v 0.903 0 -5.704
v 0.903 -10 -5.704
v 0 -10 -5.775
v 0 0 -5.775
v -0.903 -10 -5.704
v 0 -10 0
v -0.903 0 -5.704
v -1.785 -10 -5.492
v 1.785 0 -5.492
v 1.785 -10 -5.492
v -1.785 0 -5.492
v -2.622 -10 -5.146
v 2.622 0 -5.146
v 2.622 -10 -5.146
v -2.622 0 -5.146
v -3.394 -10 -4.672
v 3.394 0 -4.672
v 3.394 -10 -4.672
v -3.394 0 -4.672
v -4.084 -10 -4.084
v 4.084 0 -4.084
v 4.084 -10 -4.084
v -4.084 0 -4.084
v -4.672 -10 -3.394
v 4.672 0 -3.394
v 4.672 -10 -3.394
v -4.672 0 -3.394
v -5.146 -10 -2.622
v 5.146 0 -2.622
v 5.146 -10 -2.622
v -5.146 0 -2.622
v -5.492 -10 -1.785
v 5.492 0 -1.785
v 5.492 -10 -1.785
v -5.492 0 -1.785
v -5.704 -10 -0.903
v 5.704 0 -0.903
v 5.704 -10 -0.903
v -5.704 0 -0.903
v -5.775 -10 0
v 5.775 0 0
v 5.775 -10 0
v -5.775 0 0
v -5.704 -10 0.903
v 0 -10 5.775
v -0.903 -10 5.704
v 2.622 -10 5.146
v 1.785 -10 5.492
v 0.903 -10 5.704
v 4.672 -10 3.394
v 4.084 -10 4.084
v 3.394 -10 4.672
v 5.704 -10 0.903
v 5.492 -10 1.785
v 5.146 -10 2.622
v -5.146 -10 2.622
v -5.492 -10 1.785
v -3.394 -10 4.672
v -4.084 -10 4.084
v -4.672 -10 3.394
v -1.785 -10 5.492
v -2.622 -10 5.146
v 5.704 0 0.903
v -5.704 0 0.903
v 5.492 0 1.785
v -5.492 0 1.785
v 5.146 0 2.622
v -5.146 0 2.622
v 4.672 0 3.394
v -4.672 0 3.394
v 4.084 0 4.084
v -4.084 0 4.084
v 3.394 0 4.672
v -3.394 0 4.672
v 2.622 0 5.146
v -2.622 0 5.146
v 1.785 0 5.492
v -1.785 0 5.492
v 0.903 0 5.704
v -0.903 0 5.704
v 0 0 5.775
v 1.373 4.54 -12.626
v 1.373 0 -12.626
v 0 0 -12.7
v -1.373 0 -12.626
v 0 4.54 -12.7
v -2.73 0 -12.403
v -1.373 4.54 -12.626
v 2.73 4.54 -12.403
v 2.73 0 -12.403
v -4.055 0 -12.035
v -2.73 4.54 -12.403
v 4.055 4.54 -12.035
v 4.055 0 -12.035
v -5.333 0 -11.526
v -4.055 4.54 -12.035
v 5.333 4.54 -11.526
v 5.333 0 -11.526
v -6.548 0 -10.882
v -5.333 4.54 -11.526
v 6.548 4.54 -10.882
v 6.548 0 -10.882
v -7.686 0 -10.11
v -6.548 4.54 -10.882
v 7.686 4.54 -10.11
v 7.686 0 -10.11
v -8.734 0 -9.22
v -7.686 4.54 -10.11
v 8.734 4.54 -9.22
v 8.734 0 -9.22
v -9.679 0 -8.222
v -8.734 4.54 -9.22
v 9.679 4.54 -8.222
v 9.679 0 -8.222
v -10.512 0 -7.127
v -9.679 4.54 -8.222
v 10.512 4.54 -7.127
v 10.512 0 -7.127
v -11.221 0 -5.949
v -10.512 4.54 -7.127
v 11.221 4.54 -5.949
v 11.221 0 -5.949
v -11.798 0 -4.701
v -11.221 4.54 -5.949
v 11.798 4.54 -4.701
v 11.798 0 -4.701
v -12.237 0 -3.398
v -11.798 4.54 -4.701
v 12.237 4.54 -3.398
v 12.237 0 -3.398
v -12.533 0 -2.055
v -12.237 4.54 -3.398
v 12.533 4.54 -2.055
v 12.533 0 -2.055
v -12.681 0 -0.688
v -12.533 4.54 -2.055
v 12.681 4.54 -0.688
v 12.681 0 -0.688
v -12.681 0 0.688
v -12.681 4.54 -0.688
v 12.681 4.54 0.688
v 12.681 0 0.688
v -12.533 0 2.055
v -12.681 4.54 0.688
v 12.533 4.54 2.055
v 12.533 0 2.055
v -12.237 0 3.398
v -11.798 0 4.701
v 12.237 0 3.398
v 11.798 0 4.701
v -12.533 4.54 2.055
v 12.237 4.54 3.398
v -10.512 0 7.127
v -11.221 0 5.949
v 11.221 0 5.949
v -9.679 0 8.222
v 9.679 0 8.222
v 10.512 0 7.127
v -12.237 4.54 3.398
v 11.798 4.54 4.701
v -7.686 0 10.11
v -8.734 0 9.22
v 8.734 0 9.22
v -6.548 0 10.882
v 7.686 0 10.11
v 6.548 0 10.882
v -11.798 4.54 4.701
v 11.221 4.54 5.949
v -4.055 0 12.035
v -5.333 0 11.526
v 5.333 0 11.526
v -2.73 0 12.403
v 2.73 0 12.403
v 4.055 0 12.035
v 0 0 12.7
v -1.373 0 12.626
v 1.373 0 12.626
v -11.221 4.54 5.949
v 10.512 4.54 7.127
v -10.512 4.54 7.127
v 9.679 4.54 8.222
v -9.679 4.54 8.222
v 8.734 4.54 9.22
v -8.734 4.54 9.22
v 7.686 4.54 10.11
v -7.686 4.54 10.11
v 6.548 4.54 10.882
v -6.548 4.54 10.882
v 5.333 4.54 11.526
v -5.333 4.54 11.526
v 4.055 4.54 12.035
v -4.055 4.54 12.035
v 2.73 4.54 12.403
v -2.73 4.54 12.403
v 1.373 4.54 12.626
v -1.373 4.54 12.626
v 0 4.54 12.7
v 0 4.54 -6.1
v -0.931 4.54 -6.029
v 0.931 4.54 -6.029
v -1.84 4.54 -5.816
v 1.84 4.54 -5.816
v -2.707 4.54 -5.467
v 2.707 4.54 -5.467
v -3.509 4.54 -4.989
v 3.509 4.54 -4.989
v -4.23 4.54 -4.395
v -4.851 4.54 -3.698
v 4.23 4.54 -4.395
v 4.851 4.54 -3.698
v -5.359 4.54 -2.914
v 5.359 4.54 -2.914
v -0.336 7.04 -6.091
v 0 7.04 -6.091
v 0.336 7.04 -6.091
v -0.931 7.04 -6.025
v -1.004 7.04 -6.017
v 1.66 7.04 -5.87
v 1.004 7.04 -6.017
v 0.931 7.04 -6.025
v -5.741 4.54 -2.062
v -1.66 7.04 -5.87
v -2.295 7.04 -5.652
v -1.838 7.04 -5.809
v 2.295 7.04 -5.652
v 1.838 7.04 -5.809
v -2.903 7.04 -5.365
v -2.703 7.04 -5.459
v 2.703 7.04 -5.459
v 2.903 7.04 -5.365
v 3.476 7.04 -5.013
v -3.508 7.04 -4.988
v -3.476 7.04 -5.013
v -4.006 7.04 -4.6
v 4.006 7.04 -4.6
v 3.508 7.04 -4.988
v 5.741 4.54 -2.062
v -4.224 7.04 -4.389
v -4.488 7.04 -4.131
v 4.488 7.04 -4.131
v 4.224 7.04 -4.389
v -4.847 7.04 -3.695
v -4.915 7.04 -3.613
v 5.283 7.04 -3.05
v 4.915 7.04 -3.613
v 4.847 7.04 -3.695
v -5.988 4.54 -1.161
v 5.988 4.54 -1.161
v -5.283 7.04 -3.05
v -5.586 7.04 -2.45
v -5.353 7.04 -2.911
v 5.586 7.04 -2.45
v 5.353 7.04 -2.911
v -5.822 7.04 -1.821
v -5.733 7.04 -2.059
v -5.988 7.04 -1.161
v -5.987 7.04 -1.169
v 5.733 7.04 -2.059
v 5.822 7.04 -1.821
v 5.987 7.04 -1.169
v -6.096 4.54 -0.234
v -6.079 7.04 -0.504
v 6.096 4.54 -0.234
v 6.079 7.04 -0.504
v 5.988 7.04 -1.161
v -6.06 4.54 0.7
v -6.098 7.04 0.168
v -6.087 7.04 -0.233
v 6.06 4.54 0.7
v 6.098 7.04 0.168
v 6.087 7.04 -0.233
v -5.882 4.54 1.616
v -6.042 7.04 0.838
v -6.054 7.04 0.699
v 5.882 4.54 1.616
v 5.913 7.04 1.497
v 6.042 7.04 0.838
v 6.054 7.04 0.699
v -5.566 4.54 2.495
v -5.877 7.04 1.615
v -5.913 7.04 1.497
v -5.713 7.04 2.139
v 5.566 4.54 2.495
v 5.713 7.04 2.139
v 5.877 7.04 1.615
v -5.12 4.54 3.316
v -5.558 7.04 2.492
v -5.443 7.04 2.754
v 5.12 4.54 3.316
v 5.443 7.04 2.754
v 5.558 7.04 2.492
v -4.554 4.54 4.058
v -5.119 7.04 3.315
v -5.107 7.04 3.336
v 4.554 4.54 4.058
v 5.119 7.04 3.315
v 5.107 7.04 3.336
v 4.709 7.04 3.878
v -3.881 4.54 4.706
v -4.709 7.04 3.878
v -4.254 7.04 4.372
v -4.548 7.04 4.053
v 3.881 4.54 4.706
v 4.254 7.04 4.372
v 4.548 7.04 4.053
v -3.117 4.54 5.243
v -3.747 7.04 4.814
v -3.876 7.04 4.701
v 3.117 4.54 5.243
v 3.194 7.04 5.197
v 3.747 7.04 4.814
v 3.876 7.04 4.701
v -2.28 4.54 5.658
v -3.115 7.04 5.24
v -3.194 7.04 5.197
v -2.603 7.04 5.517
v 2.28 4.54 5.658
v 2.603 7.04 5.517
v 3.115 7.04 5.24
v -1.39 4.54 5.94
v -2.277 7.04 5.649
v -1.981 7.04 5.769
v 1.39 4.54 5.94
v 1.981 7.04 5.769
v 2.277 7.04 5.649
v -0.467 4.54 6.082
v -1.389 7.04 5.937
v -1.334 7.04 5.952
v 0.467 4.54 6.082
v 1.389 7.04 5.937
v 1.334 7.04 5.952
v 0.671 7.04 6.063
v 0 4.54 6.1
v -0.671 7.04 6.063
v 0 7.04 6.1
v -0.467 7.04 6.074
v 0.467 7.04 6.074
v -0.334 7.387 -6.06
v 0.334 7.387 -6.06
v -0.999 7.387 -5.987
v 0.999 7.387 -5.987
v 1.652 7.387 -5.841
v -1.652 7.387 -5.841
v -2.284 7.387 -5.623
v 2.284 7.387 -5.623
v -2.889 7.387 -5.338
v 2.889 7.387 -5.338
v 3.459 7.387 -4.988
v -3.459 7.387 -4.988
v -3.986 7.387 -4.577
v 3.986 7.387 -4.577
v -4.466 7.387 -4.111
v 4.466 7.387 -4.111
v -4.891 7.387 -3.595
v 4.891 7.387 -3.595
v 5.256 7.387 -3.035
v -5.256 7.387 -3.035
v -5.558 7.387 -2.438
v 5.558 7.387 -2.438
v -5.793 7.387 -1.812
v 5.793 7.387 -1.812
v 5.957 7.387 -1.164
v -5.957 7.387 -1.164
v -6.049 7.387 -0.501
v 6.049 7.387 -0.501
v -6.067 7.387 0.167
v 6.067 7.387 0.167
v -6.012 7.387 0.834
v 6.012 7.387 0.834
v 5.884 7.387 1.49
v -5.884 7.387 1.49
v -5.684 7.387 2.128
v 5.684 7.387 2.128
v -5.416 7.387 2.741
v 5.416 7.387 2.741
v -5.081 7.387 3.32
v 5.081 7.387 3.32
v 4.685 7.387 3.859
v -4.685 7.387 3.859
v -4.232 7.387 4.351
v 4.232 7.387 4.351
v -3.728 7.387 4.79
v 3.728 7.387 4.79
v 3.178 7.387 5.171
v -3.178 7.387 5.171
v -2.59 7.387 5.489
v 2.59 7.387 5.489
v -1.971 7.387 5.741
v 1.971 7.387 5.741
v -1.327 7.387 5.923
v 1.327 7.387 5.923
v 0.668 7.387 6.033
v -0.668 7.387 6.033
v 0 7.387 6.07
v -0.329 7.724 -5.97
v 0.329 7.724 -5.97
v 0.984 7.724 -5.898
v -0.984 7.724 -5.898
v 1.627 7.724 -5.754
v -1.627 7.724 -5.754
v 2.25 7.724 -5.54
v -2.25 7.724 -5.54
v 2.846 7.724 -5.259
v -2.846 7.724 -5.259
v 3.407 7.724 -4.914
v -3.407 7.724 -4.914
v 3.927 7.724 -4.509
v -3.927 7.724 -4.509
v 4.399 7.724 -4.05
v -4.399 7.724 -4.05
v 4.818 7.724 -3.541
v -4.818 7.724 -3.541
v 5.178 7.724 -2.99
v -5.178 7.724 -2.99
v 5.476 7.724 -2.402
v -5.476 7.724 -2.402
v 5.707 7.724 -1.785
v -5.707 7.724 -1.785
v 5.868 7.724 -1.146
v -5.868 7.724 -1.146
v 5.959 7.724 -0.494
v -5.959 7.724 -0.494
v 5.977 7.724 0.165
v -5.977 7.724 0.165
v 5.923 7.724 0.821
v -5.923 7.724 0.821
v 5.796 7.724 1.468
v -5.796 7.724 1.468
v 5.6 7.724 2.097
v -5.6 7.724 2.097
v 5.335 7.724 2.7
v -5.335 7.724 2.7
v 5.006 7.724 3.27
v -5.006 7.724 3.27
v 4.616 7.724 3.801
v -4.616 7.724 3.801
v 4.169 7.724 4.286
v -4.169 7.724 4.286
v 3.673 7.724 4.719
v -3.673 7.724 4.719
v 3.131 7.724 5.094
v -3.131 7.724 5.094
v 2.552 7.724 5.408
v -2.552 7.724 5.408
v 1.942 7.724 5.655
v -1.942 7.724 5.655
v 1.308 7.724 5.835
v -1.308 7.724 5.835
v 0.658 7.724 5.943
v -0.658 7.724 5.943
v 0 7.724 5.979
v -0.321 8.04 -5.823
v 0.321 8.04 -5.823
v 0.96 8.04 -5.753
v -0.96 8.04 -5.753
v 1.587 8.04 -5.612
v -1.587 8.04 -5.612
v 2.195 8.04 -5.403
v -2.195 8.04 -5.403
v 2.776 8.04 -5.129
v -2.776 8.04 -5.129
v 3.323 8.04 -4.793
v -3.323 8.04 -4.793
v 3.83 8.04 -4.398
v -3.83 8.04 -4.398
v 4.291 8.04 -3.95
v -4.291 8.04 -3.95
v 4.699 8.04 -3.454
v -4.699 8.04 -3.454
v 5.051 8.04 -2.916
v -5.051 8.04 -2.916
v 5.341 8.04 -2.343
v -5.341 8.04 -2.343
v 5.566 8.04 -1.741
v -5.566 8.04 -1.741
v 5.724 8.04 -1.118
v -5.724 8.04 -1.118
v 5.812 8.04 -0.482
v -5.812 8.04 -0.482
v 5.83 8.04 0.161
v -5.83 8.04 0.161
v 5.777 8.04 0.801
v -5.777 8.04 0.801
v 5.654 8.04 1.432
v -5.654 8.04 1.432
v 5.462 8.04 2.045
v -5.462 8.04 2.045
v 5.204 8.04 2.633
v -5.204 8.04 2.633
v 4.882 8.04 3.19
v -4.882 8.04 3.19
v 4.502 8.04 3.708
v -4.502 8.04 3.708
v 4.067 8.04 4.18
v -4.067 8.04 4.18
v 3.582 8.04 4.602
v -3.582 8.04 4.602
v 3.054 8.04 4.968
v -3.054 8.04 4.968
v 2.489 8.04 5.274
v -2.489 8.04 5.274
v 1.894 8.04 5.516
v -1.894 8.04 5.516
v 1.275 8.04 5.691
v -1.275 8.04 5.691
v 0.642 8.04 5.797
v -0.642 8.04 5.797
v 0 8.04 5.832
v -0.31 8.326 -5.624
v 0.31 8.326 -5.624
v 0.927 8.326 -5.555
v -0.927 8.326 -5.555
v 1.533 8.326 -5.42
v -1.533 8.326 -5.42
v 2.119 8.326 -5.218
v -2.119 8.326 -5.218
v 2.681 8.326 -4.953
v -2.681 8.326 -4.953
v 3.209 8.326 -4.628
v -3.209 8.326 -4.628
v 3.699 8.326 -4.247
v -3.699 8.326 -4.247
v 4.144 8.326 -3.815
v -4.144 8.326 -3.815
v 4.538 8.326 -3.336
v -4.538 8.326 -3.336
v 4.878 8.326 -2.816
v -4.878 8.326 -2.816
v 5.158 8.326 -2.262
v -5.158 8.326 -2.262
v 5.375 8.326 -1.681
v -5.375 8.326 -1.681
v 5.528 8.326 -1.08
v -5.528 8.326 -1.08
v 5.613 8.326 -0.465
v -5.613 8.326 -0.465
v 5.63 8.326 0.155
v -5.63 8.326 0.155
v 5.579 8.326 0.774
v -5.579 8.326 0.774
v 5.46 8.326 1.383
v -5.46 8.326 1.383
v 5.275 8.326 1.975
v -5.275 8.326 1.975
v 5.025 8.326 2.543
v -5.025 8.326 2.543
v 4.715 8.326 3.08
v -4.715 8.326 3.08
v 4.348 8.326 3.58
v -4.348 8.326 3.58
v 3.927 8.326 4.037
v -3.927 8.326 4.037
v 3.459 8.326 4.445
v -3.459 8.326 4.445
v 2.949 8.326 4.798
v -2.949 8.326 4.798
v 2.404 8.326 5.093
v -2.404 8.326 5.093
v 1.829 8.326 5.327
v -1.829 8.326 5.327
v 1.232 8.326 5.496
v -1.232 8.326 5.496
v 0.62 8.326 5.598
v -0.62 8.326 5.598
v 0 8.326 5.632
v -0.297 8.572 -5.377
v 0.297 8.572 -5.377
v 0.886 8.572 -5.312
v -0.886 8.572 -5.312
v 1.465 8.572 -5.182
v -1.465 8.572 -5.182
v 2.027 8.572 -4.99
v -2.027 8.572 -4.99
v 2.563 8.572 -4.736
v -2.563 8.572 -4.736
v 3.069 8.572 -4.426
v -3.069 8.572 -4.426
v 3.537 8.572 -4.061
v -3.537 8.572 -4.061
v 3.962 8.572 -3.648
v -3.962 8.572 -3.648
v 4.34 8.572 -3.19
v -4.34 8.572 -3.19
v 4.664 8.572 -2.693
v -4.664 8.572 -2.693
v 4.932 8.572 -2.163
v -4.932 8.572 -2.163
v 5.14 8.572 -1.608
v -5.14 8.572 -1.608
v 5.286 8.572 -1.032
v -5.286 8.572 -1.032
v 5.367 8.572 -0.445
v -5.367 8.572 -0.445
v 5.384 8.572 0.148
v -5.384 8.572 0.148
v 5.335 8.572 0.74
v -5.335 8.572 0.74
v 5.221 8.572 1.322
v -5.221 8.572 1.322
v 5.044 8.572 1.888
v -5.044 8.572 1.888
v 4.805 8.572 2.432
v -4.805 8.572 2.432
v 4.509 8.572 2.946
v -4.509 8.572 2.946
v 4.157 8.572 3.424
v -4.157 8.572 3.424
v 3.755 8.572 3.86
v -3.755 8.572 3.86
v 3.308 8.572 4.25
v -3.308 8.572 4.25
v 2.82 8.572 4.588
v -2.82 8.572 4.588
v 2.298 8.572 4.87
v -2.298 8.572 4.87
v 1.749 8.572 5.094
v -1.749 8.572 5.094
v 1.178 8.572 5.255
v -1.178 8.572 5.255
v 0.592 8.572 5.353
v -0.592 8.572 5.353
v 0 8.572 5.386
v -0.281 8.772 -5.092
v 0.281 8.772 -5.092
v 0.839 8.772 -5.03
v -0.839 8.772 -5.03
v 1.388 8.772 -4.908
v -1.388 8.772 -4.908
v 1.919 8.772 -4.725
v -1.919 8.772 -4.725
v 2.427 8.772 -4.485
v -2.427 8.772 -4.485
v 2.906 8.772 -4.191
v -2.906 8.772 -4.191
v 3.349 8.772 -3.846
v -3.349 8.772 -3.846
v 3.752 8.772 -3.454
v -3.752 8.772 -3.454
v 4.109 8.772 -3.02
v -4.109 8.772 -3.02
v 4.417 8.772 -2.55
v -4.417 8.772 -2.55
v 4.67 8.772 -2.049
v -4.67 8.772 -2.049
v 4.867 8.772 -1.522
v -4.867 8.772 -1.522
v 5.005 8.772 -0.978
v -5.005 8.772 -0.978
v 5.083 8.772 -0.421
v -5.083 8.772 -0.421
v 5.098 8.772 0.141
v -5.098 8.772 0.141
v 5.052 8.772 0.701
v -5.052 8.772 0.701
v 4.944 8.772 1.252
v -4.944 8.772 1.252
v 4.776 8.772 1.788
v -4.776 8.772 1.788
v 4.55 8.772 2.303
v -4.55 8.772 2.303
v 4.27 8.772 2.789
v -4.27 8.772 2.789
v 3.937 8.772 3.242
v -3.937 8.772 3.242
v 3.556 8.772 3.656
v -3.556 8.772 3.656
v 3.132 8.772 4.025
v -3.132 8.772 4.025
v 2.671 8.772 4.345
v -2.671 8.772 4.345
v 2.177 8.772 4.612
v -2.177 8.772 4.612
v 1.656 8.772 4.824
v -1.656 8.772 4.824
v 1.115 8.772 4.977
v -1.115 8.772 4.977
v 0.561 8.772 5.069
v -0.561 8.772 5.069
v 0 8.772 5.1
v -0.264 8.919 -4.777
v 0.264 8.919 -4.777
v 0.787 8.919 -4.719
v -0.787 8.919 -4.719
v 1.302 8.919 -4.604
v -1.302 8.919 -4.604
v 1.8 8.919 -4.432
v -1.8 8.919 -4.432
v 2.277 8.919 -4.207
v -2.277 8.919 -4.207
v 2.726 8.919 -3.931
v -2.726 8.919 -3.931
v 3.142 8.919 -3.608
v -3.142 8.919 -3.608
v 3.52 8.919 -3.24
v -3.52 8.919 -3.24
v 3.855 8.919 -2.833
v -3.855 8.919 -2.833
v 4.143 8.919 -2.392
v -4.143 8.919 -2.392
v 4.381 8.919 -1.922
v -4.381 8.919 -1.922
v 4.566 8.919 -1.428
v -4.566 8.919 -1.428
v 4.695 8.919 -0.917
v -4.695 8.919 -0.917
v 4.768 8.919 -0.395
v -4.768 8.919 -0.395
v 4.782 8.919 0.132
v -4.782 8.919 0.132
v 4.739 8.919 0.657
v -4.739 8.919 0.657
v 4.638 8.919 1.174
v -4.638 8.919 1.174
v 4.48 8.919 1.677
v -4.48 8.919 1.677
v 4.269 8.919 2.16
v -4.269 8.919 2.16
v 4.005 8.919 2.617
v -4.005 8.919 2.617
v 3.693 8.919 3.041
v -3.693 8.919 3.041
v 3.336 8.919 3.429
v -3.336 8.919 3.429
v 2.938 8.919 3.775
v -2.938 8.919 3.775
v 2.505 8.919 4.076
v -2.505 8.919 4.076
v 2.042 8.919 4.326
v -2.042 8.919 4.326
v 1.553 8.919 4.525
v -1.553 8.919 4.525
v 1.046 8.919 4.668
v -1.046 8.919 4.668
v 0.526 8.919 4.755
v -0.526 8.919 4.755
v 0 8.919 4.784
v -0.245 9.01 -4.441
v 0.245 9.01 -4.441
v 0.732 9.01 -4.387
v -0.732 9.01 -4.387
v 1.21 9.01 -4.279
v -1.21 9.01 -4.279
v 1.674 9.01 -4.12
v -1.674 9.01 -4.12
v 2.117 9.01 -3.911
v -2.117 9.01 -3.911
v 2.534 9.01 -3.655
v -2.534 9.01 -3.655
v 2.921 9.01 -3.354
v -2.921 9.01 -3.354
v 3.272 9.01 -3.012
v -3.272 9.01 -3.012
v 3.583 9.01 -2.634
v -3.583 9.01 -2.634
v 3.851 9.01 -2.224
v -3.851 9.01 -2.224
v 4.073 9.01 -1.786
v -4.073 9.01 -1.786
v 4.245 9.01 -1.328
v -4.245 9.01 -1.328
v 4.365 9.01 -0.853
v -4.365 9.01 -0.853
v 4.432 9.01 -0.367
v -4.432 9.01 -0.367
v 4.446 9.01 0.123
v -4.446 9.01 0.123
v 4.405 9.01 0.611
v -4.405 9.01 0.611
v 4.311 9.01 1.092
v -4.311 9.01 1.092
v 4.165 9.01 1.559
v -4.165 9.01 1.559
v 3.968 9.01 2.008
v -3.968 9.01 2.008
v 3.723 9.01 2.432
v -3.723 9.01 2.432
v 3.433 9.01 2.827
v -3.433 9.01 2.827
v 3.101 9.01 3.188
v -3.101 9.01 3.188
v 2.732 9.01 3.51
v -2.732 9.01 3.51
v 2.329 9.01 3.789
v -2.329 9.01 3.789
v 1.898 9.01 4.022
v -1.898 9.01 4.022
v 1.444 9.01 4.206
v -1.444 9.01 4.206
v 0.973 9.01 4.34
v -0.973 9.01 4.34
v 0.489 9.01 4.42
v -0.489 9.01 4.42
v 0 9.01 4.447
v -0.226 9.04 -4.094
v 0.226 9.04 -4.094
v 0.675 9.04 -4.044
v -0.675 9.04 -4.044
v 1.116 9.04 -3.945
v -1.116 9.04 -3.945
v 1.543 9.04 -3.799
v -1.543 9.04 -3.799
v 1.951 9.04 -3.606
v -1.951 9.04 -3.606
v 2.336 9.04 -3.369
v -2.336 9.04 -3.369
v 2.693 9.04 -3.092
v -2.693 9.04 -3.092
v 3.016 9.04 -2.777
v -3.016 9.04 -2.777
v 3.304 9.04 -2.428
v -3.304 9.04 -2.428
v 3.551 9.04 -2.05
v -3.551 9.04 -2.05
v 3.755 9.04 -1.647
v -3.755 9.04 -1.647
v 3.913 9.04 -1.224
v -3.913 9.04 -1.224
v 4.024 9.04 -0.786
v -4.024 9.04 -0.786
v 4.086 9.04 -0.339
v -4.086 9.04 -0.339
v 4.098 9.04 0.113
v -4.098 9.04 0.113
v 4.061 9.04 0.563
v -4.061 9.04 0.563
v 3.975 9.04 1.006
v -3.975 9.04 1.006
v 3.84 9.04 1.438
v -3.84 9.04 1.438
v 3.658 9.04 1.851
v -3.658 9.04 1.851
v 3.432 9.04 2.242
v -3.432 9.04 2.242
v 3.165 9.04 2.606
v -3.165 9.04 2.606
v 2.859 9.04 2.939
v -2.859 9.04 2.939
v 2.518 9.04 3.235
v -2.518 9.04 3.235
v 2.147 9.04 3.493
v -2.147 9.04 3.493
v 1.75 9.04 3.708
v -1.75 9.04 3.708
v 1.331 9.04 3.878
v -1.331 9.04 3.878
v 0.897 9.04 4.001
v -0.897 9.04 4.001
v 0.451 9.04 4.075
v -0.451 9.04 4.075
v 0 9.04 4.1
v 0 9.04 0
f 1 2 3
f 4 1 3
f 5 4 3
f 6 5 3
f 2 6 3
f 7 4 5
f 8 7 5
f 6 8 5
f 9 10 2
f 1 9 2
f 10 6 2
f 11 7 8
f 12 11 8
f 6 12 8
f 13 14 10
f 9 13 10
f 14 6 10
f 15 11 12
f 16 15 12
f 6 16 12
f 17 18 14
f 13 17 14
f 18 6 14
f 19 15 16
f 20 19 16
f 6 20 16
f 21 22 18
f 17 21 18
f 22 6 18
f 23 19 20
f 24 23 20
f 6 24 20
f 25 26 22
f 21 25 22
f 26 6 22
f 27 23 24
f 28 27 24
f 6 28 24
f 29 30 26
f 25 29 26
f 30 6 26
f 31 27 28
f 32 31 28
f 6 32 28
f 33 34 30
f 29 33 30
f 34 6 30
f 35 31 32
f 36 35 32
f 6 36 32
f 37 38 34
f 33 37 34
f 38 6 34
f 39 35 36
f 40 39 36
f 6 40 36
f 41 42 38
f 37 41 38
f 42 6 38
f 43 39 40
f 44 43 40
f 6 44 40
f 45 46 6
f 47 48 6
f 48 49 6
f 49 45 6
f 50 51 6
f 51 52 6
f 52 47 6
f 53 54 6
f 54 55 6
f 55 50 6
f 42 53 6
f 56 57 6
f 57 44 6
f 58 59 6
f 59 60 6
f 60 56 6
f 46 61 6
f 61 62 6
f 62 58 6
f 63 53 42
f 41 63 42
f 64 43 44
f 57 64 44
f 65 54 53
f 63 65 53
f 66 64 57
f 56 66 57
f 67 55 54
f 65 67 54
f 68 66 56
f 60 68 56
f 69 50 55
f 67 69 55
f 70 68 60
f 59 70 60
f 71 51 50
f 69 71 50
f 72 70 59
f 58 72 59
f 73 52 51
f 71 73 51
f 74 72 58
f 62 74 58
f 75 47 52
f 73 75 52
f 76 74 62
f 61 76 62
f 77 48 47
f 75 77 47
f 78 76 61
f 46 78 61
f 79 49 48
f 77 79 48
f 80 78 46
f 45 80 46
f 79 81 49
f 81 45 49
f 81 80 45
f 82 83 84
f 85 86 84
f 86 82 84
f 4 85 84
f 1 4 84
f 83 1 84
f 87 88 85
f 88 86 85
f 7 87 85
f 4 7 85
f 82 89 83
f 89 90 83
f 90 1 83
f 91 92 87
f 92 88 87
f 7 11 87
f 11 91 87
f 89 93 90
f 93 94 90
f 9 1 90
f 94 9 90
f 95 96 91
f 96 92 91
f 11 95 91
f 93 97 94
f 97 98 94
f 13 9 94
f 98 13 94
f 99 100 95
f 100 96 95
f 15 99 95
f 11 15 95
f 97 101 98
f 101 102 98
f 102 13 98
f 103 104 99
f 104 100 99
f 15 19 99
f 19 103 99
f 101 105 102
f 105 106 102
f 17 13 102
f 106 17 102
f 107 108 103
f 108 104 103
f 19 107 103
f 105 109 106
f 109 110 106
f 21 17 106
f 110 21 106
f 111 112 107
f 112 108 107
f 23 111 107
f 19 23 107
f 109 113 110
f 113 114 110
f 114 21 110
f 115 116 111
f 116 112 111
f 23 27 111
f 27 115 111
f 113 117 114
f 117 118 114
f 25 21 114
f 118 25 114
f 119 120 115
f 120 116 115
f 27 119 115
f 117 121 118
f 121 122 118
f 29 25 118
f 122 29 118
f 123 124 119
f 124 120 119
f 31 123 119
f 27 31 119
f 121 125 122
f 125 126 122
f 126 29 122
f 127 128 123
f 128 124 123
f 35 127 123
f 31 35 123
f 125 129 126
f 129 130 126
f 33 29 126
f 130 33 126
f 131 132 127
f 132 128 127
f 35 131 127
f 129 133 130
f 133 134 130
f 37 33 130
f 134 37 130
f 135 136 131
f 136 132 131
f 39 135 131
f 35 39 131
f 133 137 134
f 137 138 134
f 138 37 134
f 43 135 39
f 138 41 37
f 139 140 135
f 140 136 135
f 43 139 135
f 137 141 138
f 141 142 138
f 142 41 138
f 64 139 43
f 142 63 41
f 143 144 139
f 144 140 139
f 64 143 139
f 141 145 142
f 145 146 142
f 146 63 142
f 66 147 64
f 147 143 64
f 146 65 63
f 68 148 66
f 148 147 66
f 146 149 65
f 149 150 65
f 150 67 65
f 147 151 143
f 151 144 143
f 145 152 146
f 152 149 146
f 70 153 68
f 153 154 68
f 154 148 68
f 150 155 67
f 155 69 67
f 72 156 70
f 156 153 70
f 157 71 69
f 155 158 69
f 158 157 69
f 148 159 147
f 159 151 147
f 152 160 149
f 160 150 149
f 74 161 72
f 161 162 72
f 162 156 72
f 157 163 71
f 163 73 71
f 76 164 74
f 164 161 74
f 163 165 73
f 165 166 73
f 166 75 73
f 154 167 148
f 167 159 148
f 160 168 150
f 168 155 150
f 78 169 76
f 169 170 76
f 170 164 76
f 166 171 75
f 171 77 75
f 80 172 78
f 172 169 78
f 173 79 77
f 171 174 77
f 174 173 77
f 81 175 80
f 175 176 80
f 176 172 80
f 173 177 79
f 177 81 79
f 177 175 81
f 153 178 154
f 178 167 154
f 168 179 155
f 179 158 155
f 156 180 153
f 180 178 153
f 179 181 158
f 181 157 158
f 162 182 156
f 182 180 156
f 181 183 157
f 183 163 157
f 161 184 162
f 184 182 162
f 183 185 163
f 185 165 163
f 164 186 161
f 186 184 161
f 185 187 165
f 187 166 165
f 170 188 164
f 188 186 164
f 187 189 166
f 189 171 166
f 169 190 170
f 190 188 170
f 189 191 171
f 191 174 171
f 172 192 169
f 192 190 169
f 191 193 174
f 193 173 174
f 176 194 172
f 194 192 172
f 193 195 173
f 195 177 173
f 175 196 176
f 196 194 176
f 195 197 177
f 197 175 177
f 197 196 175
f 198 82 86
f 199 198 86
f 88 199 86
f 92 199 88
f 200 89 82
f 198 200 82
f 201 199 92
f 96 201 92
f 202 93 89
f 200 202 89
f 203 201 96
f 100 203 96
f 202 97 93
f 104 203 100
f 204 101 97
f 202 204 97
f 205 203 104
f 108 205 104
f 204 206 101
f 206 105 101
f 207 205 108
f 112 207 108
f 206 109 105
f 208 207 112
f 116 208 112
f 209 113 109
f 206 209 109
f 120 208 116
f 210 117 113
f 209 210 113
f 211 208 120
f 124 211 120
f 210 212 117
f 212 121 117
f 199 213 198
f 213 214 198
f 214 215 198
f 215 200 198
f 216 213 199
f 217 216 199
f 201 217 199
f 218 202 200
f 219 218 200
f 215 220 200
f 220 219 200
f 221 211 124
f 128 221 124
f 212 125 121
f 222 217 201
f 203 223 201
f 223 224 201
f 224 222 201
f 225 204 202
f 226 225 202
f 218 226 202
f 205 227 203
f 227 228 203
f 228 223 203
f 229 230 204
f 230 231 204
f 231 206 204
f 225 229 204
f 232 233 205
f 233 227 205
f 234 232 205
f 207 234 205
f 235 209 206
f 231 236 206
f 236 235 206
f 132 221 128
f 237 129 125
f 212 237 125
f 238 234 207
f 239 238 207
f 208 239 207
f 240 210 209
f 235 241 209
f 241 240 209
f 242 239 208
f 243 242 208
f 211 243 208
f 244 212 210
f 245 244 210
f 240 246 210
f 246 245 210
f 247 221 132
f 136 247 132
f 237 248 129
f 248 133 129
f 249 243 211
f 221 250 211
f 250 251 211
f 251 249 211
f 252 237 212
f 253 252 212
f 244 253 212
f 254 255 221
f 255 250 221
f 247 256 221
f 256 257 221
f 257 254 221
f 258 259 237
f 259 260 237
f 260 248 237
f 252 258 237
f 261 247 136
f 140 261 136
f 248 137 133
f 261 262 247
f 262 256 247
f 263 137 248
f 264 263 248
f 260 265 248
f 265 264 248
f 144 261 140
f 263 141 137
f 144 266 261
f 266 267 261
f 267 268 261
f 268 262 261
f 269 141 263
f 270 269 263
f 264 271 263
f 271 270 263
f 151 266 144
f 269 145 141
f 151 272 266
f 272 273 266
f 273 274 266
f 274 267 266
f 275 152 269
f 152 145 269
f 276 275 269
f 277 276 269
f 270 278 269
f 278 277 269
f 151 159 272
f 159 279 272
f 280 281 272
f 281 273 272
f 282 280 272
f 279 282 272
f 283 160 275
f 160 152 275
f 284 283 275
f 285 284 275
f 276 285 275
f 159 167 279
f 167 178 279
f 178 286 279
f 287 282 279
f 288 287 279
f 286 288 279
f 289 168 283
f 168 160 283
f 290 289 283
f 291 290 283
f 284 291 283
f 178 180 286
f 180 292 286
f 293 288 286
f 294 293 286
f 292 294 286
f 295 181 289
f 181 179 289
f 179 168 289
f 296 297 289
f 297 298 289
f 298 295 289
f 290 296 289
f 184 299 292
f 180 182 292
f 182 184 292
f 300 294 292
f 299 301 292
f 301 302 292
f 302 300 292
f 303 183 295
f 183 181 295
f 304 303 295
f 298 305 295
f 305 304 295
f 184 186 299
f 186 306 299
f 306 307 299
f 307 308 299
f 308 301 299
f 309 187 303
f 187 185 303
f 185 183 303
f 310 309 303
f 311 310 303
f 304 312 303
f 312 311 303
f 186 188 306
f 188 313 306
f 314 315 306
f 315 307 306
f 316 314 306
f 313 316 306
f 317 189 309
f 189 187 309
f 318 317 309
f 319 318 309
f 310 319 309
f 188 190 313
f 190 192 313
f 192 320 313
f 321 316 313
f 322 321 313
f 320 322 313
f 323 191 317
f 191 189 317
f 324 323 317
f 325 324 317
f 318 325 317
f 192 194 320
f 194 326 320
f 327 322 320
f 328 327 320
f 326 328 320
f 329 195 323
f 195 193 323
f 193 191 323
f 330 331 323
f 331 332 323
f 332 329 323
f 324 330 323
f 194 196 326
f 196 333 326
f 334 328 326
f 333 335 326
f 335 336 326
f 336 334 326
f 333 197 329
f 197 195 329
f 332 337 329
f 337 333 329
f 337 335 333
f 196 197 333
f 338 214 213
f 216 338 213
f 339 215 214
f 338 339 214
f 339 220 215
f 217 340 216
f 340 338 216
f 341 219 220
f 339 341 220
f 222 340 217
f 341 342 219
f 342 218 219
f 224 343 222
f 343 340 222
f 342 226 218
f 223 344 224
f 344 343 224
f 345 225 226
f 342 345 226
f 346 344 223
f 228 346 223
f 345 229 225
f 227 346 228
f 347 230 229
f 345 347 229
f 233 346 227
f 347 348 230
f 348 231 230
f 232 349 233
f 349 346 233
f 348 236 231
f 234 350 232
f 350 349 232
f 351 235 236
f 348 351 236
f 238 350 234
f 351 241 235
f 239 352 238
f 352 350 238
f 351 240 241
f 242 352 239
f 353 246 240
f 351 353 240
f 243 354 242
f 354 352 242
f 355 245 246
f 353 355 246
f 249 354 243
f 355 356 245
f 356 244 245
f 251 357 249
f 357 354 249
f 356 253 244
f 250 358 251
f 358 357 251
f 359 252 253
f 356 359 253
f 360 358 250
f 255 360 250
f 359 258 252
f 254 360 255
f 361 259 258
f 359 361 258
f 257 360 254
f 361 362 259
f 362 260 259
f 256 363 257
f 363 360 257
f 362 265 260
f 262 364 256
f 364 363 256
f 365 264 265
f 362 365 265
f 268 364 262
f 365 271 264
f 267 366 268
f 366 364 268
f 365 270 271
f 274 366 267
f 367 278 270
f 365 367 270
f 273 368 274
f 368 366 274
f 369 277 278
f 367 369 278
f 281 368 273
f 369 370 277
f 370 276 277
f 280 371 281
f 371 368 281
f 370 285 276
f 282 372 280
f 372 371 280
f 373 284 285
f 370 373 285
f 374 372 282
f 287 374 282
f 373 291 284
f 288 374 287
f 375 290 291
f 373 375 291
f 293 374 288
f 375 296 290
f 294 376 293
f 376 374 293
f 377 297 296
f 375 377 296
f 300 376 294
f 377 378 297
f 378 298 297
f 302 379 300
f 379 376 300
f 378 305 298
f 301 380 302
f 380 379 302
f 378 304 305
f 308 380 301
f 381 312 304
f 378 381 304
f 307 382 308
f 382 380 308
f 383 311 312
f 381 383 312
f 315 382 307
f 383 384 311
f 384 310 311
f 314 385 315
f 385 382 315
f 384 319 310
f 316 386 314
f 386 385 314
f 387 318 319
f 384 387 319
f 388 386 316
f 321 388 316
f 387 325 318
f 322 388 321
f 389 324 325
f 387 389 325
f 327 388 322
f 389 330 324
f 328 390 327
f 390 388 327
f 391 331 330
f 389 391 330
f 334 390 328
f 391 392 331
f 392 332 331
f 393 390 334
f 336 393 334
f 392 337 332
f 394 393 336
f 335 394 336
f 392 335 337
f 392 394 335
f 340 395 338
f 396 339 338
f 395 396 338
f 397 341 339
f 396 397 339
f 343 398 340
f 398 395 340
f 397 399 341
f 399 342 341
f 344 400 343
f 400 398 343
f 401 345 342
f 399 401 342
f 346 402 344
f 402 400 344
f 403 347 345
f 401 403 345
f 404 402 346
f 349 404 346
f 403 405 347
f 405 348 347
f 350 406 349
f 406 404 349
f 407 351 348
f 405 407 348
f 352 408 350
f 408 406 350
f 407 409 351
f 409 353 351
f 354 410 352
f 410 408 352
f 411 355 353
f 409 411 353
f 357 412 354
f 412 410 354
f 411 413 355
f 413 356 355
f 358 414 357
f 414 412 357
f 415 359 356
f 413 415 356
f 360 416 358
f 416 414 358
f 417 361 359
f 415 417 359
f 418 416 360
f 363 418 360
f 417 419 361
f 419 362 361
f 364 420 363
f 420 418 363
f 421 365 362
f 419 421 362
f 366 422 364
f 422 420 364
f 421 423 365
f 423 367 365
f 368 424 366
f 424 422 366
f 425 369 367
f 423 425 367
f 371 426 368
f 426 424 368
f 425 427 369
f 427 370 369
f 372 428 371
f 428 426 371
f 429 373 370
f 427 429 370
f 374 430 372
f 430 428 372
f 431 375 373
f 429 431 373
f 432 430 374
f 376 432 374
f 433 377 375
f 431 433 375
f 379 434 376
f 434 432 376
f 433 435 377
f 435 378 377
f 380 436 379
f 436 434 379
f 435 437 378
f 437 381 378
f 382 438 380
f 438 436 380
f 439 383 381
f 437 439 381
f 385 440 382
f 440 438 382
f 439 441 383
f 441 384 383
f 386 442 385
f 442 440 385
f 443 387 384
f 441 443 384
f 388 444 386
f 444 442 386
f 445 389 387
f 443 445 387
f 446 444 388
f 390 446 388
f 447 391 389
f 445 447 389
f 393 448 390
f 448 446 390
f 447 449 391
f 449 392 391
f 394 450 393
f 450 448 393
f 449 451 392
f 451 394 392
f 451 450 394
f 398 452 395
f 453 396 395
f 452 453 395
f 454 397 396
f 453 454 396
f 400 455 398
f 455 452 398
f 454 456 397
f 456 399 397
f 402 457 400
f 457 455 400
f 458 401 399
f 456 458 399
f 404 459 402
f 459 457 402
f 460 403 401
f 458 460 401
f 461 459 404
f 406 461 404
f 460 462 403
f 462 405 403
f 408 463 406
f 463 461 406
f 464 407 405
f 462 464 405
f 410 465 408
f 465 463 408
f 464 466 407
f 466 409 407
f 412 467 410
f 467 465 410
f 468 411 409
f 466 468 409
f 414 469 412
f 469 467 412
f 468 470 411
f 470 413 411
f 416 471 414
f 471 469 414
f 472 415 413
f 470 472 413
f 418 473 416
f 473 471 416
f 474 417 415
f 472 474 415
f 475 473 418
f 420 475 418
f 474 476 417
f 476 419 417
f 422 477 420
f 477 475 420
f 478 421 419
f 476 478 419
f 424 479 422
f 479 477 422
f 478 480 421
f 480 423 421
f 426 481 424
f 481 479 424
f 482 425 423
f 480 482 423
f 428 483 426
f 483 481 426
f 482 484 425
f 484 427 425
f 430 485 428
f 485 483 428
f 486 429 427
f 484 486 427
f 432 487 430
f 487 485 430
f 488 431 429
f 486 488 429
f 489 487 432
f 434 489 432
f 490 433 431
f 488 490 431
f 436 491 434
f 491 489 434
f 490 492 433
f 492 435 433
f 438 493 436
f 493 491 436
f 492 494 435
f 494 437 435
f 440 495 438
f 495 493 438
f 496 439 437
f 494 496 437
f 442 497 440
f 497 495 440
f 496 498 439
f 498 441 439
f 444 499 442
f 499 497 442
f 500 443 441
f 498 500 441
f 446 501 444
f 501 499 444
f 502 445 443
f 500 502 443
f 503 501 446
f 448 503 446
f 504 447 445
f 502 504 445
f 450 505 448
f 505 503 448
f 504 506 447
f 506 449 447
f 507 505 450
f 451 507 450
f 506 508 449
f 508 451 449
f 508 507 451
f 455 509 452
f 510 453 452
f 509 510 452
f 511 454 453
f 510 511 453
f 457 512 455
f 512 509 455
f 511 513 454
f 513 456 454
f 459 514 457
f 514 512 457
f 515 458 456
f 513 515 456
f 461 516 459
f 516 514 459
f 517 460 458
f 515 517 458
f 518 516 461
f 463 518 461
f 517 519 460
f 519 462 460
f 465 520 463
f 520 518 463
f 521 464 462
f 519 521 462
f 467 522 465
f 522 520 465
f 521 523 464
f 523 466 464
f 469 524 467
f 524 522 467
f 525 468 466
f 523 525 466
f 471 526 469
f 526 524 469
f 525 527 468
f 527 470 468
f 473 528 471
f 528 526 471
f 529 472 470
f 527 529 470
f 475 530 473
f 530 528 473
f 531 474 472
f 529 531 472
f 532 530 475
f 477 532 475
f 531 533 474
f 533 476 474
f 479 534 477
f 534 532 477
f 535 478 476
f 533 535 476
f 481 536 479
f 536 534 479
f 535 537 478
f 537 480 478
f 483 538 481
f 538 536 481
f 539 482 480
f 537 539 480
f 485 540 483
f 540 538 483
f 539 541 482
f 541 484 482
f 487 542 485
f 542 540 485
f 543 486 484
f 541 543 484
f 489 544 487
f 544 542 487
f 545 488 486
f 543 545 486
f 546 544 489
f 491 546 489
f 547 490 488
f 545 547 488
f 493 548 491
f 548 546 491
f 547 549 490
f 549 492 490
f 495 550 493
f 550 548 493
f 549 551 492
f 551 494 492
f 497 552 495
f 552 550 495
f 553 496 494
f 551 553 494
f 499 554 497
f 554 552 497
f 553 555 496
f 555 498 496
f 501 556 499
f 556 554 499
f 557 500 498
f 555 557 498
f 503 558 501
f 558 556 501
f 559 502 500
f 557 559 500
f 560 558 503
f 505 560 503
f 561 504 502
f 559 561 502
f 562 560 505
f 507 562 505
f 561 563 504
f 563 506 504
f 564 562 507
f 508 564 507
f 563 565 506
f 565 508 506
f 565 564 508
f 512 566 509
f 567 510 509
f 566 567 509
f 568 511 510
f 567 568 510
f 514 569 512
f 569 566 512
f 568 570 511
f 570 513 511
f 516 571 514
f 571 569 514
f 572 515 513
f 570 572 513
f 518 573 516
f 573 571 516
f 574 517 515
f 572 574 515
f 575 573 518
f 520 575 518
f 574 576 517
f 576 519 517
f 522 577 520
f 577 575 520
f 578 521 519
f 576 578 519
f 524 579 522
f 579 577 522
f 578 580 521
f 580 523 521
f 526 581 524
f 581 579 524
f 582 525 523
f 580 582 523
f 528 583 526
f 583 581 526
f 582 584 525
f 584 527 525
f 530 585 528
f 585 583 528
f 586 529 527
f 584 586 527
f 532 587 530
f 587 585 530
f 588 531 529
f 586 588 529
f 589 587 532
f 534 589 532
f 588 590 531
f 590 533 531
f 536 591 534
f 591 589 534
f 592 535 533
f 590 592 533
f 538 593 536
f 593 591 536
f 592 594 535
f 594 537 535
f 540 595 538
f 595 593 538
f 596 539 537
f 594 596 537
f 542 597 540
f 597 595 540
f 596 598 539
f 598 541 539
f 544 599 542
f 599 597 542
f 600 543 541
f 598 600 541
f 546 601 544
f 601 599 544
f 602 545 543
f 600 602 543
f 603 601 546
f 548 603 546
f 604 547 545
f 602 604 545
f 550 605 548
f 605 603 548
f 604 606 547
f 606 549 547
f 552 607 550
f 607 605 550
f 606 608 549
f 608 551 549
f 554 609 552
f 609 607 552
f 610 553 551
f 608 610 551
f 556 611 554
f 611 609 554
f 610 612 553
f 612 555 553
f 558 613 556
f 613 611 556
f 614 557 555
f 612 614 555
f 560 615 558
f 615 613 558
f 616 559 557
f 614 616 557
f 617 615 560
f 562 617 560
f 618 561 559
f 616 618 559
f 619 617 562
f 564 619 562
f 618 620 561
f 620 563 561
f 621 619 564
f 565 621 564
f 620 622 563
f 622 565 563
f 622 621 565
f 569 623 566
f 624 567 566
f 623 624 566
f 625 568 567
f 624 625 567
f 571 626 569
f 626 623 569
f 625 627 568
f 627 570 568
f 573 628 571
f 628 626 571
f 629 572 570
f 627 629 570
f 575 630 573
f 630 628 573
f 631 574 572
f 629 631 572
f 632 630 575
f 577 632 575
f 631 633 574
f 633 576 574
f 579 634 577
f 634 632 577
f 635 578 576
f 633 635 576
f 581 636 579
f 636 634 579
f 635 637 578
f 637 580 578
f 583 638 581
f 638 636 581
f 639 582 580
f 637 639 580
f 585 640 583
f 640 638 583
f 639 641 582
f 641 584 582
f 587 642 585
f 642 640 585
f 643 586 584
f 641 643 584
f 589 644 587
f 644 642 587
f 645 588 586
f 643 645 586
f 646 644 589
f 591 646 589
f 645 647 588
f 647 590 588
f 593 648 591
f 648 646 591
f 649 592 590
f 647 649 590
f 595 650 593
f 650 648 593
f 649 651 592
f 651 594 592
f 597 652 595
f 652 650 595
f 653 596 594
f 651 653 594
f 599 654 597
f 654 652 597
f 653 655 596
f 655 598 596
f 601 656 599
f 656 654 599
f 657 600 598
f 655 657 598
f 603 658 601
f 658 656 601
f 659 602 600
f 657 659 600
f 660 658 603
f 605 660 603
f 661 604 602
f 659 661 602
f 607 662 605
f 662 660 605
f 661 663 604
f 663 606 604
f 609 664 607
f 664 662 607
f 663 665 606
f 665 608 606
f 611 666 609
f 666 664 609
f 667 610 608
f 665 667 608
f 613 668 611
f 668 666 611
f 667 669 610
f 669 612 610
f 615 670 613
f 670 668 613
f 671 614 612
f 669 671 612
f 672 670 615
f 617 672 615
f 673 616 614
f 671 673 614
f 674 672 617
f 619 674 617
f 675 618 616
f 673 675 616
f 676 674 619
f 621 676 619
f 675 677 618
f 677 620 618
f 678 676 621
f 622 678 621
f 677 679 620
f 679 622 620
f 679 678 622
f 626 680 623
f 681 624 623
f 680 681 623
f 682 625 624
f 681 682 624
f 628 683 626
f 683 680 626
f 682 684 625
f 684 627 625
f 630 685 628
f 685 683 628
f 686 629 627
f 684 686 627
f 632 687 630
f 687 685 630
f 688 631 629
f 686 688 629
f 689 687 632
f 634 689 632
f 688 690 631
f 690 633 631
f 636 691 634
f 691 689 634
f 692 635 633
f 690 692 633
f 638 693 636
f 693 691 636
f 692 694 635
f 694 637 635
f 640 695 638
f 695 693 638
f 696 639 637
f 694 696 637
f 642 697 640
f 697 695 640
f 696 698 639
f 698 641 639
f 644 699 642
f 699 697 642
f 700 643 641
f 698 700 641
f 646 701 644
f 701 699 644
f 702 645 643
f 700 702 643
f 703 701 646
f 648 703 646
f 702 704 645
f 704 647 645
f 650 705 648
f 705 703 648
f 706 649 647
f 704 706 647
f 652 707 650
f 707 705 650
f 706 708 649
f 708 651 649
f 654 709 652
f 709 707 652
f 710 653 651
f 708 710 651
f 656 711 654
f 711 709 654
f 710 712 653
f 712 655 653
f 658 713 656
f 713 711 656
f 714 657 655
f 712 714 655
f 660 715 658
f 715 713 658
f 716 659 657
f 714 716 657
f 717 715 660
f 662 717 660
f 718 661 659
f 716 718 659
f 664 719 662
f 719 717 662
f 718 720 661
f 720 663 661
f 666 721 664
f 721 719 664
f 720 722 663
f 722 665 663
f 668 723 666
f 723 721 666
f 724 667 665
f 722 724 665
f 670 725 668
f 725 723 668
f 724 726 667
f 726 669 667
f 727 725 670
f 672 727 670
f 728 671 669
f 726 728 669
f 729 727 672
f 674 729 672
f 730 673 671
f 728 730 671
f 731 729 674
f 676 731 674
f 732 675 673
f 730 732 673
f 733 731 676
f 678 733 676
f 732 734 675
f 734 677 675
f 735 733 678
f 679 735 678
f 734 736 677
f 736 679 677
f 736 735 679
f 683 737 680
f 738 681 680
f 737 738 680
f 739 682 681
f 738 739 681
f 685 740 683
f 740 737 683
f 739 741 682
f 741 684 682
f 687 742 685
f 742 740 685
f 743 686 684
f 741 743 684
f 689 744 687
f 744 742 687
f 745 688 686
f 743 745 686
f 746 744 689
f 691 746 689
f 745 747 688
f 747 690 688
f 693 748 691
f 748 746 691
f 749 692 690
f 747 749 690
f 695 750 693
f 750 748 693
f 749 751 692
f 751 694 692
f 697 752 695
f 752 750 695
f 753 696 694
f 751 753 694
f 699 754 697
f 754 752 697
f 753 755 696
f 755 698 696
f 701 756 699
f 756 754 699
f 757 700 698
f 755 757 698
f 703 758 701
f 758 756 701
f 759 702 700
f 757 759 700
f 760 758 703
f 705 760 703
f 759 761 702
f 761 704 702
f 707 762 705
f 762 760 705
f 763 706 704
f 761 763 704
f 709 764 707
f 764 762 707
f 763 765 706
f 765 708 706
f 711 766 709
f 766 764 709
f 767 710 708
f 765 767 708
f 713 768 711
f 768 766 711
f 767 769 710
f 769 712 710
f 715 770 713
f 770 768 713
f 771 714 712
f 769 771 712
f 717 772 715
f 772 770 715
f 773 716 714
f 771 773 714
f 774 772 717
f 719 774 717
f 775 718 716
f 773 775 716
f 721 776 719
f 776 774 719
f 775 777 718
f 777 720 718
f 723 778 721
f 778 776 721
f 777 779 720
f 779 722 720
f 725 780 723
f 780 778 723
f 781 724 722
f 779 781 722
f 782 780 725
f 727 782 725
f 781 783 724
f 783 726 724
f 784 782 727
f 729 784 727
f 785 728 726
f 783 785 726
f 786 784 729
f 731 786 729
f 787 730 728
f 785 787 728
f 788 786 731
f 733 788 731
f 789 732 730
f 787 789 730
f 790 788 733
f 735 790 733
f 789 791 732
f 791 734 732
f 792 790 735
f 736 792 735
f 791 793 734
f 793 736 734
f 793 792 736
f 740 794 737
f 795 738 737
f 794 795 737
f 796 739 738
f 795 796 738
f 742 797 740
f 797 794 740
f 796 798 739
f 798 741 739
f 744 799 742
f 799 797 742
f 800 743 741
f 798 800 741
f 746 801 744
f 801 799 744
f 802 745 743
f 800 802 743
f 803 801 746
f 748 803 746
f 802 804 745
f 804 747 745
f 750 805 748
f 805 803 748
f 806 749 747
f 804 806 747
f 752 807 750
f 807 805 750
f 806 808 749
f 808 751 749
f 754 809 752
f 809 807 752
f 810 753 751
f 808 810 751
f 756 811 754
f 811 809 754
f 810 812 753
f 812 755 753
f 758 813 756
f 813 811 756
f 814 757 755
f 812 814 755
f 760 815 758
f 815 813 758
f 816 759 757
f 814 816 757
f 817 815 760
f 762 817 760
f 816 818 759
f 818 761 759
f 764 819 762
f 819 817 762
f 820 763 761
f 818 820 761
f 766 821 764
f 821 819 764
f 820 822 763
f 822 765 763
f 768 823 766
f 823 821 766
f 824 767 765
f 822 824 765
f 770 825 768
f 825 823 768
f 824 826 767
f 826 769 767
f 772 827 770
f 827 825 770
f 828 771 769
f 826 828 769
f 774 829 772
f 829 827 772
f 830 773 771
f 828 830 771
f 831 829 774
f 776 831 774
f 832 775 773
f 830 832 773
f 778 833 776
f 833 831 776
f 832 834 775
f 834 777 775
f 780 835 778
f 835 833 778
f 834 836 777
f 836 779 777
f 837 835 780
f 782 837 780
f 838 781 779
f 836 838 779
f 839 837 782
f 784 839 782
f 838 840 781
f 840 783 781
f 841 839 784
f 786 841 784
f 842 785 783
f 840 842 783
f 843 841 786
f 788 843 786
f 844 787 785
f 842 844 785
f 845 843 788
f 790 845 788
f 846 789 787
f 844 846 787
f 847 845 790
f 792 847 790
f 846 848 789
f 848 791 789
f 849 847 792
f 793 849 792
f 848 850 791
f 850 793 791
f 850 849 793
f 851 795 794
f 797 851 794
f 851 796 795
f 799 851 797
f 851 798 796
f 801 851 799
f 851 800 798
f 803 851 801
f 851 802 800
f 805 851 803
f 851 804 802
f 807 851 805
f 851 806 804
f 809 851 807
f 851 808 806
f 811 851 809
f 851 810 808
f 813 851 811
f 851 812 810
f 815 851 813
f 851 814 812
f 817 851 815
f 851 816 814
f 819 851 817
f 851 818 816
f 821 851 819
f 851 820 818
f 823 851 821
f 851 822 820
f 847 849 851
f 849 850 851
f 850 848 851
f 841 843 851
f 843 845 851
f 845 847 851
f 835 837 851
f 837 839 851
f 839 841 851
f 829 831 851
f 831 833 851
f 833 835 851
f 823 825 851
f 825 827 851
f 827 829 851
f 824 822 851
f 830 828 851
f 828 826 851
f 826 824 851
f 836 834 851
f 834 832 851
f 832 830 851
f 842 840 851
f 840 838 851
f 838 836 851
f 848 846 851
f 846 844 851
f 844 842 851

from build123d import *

# Parameters (mm, degrees)
SKETCH1_R           = 5.775
BOSS_EXTRUDE1_DEPTH = 10
SKETCH2_R           = 12.7
BOSS_EXTRUDE2_DEPTH = 4.54
SKETCH3_R           = 6.1
BOSS_EXTRUDE3_DEPTH = 4.5
FILLET1_R           = 2


with BuildPart() as part:
    # Sketch1 → Boss-Extrude1 (new body)
    with BuildSketch(Plane(origin=(0, 0, 0), x_dir=(1, 0, 0), z_dir=(0, 1, 0))):
        with Locations(Location((0, 0, 0), (0, 0, 270))):
            Circle(SKETCH1_R)
    extrude(amount=-BOSS_EXTRUDE1_DEPTH)

    # Sketch2 → Boss-Extrude2 (add)
    with BuildSketch(Plane(origin=(0, 0, 0), x_dir=(1, 0, 0), z_dir=(0, 1, 0))):
        with Locations(Location((0, 0, 0), (0, 0, 270))):
            Circle(SKETCH2_R)
    extrude(amount=BOSS_EXTRUDE2_DEPTH)

    # Sketch3 → Boss-Extrude3 (add)
    with BuildSketch(Plane(origin=(0, 4.54, 0), x_dir=(1, 0, 0), z_dir=(0, 1, 0))):
        with Locations(Location((0, 0, 0), (0, 0, 270))):
            Circle(SKETCH3_R)
    extrude(amount=BOSS_EXTRUDE3_DEPTH)

    # Fillet1
    fillet1_edges = [part.edges().sort_by_distance(p)[0] for p in [
        (0, 9.04, -6.1),
    ]]
    fillet(fillet1_edges, radius=FILLET1_R)


solid = part.part
